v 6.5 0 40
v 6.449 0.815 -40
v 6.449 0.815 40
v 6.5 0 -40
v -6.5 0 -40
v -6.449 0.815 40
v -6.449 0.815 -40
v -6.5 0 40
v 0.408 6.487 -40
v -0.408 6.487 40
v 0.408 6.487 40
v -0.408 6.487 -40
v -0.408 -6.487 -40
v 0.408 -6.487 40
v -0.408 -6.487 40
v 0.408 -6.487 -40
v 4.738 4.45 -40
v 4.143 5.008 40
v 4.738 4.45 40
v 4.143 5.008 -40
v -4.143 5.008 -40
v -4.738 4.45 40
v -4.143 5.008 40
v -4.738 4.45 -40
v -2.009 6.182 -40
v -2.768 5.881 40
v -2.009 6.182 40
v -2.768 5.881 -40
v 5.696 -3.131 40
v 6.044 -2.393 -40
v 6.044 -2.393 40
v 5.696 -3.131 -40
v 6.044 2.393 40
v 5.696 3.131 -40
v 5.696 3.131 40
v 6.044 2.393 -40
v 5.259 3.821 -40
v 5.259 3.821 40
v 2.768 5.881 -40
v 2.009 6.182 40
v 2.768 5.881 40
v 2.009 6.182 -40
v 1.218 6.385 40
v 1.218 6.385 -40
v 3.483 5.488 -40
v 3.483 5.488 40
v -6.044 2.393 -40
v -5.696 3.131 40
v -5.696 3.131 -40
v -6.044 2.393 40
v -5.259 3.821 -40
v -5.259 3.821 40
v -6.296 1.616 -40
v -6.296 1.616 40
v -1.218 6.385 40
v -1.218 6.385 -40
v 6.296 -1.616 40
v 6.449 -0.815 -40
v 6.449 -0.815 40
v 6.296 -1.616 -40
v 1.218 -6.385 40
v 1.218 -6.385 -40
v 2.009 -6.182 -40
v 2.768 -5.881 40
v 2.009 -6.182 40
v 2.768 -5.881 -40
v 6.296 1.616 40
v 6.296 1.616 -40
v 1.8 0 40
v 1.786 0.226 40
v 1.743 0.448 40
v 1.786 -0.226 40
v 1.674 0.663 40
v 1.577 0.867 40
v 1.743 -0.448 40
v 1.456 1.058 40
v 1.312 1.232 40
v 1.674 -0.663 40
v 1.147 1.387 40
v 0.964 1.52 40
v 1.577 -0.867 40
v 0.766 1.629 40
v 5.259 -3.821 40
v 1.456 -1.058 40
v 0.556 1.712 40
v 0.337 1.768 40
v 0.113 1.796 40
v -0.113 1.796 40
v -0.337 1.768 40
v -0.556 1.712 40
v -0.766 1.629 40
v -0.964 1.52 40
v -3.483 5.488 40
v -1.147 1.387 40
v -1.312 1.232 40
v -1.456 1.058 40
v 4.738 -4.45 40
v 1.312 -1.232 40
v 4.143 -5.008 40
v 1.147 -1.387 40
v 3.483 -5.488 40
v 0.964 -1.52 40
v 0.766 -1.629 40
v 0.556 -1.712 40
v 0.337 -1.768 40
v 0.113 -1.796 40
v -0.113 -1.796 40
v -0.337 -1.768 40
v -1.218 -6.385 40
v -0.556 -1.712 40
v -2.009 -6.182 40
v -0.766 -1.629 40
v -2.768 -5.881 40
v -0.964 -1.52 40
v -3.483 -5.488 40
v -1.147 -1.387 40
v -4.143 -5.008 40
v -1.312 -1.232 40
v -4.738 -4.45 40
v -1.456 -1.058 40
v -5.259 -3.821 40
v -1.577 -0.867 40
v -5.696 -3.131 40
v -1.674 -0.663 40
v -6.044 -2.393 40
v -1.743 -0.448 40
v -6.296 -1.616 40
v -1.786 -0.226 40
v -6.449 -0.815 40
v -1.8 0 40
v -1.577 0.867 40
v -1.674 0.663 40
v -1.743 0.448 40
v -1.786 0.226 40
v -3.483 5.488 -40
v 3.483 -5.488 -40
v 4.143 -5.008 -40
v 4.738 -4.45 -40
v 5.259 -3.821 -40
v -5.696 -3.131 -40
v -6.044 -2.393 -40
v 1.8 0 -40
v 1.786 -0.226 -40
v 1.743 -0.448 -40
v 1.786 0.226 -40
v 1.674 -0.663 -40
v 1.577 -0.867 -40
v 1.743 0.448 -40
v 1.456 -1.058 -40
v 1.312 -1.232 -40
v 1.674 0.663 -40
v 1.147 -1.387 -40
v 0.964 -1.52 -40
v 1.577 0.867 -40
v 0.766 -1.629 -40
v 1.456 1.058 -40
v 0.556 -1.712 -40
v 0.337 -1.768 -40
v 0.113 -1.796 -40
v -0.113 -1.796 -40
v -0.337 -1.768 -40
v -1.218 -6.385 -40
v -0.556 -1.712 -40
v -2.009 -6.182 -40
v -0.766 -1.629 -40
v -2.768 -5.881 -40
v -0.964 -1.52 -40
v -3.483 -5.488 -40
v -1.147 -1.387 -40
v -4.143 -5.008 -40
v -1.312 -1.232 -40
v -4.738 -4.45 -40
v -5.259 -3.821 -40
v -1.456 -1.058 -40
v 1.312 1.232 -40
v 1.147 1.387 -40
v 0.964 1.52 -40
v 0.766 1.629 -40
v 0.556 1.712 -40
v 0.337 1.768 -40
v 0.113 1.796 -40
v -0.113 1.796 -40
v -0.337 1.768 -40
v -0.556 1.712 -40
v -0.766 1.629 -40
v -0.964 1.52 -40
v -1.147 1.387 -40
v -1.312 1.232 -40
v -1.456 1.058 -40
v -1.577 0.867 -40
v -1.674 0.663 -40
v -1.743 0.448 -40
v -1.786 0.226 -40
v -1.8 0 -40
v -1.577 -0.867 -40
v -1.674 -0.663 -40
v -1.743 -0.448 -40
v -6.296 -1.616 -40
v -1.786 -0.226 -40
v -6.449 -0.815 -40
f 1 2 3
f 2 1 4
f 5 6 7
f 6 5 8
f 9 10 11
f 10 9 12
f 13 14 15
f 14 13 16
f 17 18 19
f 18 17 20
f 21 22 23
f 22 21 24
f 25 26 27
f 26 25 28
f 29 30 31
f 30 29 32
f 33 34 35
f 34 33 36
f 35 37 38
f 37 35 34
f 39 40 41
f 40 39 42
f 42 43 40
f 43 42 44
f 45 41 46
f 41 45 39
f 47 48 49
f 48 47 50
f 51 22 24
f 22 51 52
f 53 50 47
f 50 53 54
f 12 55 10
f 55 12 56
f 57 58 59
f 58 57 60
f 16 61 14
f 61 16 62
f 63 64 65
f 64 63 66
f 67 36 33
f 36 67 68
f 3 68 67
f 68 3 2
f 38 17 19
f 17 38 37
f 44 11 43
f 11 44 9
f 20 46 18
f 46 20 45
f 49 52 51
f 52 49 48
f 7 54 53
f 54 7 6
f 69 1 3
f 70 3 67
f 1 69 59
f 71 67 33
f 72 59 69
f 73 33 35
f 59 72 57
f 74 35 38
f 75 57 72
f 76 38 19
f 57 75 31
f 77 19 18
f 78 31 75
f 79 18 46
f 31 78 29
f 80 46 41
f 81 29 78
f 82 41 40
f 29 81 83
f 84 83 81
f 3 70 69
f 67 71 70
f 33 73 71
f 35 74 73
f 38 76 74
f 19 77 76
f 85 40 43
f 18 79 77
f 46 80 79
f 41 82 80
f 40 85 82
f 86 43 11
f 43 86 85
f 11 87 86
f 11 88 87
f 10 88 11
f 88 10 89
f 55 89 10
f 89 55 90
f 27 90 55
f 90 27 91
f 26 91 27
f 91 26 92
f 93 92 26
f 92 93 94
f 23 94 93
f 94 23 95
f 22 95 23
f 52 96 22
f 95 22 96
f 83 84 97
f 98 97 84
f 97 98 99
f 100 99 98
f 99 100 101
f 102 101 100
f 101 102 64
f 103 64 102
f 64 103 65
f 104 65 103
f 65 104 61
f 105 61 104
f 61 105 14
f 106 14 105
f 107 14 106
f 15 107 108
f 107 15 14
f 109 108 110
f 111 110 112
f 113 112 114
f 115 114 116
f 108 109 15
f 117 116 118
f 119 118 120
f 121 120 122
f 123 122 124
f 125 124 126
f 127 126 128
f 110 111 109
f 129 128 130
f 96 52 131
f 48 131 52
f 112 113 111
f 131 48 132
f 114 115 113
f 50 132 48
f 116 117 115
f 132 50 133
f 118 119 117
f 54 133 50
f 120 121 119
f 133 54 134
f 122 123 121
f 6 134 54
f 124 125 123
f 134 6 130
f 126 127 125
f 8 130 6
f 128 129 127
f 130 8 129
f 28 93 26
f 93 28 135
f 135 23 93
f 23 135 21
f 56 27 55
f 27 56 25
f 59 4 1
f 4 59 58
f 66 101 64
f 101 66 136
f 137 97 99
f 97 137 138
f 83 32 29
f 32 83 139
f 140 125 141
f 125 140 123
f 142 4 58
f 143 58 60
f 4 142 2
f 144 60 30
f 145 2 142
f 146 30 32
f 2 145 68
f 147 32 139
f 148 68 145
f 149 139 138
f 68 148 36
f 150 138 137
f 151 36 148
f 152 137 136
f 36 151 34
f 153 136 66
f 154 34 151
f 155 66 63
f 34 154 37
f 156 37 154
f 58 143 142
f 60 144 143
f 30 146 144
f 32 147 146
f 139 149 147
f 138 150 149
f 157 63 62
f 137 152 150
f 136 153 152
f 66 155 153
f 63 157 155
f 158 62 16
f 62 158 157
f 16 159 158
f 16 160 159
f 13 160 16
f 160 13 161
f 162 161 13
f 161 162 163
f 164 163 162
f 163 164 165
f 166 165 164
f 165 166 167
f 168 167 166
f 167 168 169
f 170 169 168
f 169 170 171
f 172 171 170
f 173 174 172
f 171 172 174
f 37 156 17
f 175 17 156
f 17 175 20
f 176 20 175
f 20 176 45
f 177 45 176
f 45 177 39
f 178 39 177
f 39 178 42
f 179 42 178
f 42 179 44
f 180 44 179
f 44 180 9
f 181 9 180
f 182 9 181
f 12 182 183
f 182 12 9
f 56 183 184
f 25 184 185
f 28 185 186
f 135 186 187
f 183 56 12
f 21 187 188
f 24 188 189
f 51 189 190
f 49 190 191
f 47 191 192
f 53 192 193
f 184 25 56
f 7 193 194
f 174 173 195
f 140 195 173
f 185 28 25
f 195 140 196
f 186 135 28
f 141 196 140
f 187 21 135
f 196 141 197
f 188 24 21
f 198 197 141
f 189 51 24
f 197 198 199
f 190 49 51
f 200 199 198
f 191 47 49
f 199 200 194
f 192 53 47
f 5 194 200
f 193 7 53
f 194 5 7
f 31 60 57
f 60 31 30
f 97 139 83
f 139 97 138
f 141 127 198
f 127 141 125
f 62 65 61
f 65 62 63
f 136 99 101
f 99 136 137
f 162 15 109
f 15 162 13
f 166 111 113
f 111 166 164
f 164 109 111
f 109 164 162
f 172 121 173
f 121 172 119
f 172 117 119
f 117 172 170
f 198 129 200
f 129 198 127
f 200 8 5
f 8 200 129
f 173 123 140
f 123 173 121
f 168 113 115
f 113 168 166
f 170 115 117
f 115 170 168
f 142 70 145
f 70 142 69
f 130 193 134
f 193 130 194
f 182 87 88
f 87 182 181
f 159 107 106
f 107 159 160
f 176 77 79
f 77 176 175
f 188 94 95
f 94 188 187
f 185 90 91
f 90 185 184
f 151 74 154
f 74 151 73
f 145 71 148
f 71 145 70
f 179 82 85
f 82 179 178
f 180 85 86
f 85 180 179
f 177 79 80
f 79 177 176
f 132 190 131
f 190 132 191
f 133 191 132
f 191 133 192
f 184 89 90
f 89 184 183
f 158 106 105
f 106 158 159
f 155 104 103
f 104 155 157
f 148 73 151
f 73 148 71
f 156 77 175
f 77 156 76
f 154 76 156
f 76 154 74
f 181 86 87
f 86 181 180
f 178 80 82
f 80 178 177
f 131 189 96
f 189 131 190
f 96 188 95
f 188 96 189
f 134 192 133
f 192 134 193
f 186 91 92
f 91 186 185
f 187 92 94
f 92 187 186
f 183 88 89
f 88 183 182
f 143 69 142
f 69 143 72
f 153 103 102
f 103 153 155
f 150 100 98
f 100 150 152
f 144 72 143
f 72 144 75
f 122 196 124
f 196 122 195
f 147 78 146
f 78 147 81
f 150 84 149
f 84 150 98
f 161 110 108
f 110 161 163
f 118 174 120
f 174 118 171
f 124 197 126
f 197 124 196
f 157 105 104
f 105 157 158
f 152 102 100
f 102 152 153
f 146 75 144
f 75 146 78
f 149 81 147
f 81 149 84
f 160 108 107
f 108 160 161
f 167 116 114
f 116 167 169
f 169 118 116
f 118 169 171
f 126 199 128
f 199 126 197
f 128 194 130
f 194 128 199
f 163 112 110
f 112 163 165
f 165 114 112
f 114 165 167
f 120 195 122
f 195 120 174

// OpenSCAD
$fn = 50;


difference() {
	union() {
		translate(v = [0, 0, -40.0000000000]) {
			cylinder(h = 80, r = 6.5000000000);
		}
	}
	union() {
		translate(v = [0, 0, -100.0000000000]) {
			cylinder(h = 200, r = 1.8000000000);
		}
	}
}
